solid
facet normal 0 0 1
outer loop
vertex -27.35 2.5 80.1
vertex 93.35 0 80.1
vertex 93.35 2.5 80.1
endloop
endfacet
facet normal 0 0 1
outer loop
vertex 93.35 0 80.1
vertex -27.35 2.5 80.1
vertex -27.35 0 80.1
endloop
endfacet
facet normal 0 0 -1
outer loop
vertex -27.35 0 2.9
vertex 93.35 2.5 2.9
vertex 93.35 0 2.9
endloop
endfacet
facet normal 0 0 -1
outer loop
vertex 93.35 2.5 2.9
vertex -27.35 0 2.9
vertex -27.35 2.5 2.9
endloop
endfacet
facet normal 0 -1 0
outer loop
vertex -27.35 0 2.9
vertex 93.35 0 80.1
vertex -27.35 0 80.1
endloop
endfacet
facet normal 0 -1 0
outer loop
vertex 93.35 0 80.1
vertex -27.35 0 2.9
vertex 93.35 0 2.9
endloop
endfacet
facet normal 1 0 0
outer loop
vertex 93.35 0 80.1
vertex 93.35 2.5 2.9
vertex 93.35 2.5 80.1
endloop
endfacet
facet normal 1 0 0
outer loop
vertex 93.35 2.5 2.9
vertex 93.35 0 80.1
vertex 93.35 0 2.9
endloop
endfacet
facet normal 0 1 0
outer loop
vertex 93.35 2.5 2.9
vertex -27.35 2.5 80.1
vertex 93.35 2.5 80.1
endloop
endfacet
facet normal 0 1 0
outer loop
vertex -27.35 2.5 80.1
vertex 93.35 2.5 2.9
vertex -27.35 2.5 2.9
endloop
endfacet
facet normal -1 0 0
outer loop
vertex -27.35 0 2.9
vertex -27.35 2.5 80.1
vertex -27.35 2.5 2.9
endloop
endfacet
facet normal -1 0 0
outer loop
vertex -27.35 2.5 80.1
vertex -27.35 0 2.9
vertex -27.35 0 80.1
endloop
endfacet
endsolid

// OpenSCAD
// file: D:/Projects/assembly-workshop/outputs/Screen_Pi_Hue_SCR5-H_2026-10-30/checks/geometry.scad
// SCR5-G; mm; FRONT view: X right, Z up, Y into rack. Glass/plate front Y=0.
// Measured values: work/screen-5in/Dimensions.md. Physical fit/strength UNKNOWN.
part="plate";
DROP=0.45; // coupon winner can be substituted here; all three pins use this DROP
LIP=0.8; LIP_ON=true;
LIP_EDGES=[true,true,false,false]; // left,right,bottom,top; Brian: side lips only, cosmetic
FRAME_STEP=1.5; // measured glass-edge inset to metal LCD frame, left/right only
SHIM=0; // moves rear frame seat and plate-boss mating face back
$fn=48;
GCX=33; GCZ=41.5; PW=252; PH=88.8; PT=4;
GW=120.7; GH=77.2; CLEAR=0.2; WW=GW+2*CLEAR; WH=GH+2*CLEAR;
SEAT=13.3+SHIM; FT=3;
SO=[56.45,34]; BTN_X=[45.5,35.5,25.5];
PCB_TOP=38; GAP=0.10; LEAF_T=0.8;
HOLE=[3.4,40.3,44.7];
BX=[GCX-68,GCX+68]; BZ=[10,72];
// DSI connector X extent is unmeasured: conservative assumed 8 mm inward from PCB edge.
DSI=[GCX-60.5,9.1,GCZ-38+30,8,5.25,21];
module xz(y,d){translate([0,y+d,0])rotate([90,0,0])linear_extrude(d)children();}
// rr/rack_slots copied from SCR5-F; same exact slot centres, outline shifted -0.05 Z to centre 44.4.
module rr(w,h,r){hull()for(x=[-w/2+r,w/2-r],z=[-h/2+r,h/2-r])translate([x,z])circle(r=r);}
module rack_slots(){for(x=[-118.2625,118.2625],z=[6.323,38.127,50.773,82.577])translate([x,z])hull()for(dx=[-1.5,1.5])translate([dx,0])circle(d=7);}
module cyl_y(x,y,z,d,h){translate([x,y,z])rotate([-90,0,0])cylinder(d=d,h=h);}
module window_cut(){
  xz(-0.02,4.04)translate([GCX,GCZ])square([WW,WH],center=true);
  // 0.3 x 45-degree chamfer, square corners, front only.
  translate([GCX,0.3,GCZ])rotate([90,0,0])
    linear_extrude(height=0.3,scale=[(WW+0.6)/WW,(WH+0.6)/WH])square([WW,WH],center=true);
}
module lips(){
  // Cosmetic side ledges only; rear frame/standoffs set depth and retain the screen.
  if(LIP_ON)for(i=[0:3])if(LIP_EDGES[i]){
    if(i<2)translate([GCX+(i==0?-WW/2:WW/2-LIP),2.5,GCZ-GH/2+4])cube([LIP,0.8,GH-8]);
    else translate([GCX-GW/2+4,2.5,GCZ+(i==2?-WH/2:WH/2-LIP)])cube([GW-8,0.8,LIP]);
  }
}
// Leaf/nub/bump geometry copied from SCR5-WP-A, translated to this glass centre.
module leaves(){for(x=BTN_X)translate([GCX+x-1.5,0,GCZ]){
  translate([0,0,PCB_TOP+GAP+0.9+0.1])cube([3,11.8,LEAF_T]);
  translate([0,10.2,PCB_TOP+GAP])cube([3,1.4,1.0+LEAF_T/2]);
  translate([0,10.4,PCB_TOP+GAP+1.0+LEAF_T])cube([3,1.0,0.9]);
}}
module plate(){difference(){union(){
  difference(){xz(0,PT)translate([0,PH/2])rr(PW,PH,2.5);window_cut();}
  for(x=BX,z=BZ)cyl_y(x,3.9,z,8,SEAT-3.9);
  leaves(); lips();
 }
 xz(-0.02,4.04)rack_slots();
 for(x=BTN_X)translate([GCX+x-HOLE[0]/2,-0.02,GCZ+HOLE[1]])cube([HOLE[0],SEAT+FT+0.04,HOLE[2]-HOLE[1]]);
 // Printed-in screw pilots (no heat-set OD assumption): nominal M2.5, fit UNKNOWN.
 for(x=BX,z=BZ)cyl_y(x,SEAT-6,z,2.1,6.02);
 // Rear engraving, 0.5 deep, left field.
 xz(3.5,0.52)translate([-75,40])mirror([1,0])text("SCR5-G",size=6,halign="center",font="Liberation Sans:style=Bold");
}}
module frame_blank(){
  // C-shaped perimeter; no material across the board centre / touch FPC.
  xz(SEAT,FT)translate([GCX,GCZ])difference(){square([132,76],center=true);square([116,60],center=true);}
  for(sx=[-1,1],sz=[-1,1])cyl_y(GCX+sx*SO[0],SEAT,GCZ+sz*SO[1],9,FT);
  for(x=BX,z=BZ)hull(){cyl_y(x,SEAT,z,8,FT);cyl_y(GCX+(x<GCX?-62:62),SEAT,z,8,FT);}
}
module dsi_keepout(){translate([DSI[0]-3,DSI[1]-3,DSI[2]-3])cube([DSI[3]+6,DSI[4]+6,DSI[5]+6]);}
module ribbon_route(){
  // Open left/up corridor 18 mm wide; extends past top of plate.
  translate([GCX-84,6.1,GCZ-11])cube([18,24,65]);
  translate([GCX-84,6.1,GCZ-11])cube([32,24,27]);
}
module frame(){difference(){frame_blank();dsi_keepout();ribbon_route();
 for(sx=[-1,1],sz=[-1,1])cyl_y(GCX+sx*SO[0],SEAT-0.02,GCZ+sz*SO[1],2.8,FT+0.04);
 for(x=BX,z=BZ)cyl_y(x,SEAT-0.02,z,2.8,FT+0.04);
}}
// Pin polygon/cap/notch/dot design copied unchanged from SCR5-WP-A.
module pin(d,dots){s=2*d+0.5;difference(){union(){
 translate([-1.5,0,0])rotate([90,0,90])linear_extrude(3)polygon([
 [-s-0.02,40.5],[10.2,40.5],[10.2,41.0],[11.5,41.0],[11.5+2*d,41.0-d],[15,41.0-d],[15,44.5],[-s-0.02,44.5]]);
 translate([-2.5,-s-1.5,39.6])cube([5,1.5,5.8]);
 }for(i=[0:dots-1])translate([(i-(dots-1)/2)*1.4,-s-1.5-0.01,43.5])rotate([-90,0,0])cylinder(d=0.9,h=0.4);}}
module placed_pin(i){translate([GCX+BTN_X[i],0,GCZ])pin(DROP,i+1);}
// Measured layers: cover glass 0.9 + second glass 1.6, metal frame 3.0,
// open gap 2.0, PCB 1.6. Metal frame inset ~1.5 at LEFT/RIGHT only.
// PCB centred under glass and full metal-frame top/bottom extent remain UNKNOWN.
module glass(){translate([GCX-GW/2,0,GCZ-GH/2])cube([GW,2.5,GH]);}
module lcd(){
  translate([GCX-GW/2+FRAME_STEP,2.5,GCZ-GH/2])cube([GW-2*FRAME_STEP,3.0,GH]);
}
module pcb(){translate([GCX-60.5,7.5,GCZ-38])cube([121,1.6,76]);}
module standoffs(){for(sx=[-1,1],sz=[-1,1])difference(){cyl_y(GCX+sx*SO[0],9.1,GCZ+sz*SO[1],5.5,4.2);cyl_y(GCX+sx*SO[0],9.08,GCZ+sz*SO[1],2.5,4.24);}}
module buttons(){for(x=BTN_X){
 translate([GCX+x-3.5,9.1,GCZ+38-3.4])cube([7,3.6,2.4]);
 translate([GCX+x-1.5,9.1,GCZ+37])cube([3,3.6,1]);
}}
module dsi(){translate([DSI[0],DSI[1],DSI[2]])cube([DSI[3],DSI[4],DSI[5]]);}
module touch(){translate([GCX-10,9.1,GCZ-5])cube([20,2,10]);} // lateral extent unmeasured
module dummy(){glass();lcd();pcb();standoffs();buttons();dsi();touch();}
module assembly(){color("gray")plate();color("orange")frame();for(i=[0:2])color("cyan")placed_pin(i);color([0.2,0.3,0.4,0.4])dummy();}
// main file
include <D:/Projects/assembly-workshop/outputs/Screen_Pi_Hue_SCR5-H_2026-10-30/checks/geometry.scad>
glass();
